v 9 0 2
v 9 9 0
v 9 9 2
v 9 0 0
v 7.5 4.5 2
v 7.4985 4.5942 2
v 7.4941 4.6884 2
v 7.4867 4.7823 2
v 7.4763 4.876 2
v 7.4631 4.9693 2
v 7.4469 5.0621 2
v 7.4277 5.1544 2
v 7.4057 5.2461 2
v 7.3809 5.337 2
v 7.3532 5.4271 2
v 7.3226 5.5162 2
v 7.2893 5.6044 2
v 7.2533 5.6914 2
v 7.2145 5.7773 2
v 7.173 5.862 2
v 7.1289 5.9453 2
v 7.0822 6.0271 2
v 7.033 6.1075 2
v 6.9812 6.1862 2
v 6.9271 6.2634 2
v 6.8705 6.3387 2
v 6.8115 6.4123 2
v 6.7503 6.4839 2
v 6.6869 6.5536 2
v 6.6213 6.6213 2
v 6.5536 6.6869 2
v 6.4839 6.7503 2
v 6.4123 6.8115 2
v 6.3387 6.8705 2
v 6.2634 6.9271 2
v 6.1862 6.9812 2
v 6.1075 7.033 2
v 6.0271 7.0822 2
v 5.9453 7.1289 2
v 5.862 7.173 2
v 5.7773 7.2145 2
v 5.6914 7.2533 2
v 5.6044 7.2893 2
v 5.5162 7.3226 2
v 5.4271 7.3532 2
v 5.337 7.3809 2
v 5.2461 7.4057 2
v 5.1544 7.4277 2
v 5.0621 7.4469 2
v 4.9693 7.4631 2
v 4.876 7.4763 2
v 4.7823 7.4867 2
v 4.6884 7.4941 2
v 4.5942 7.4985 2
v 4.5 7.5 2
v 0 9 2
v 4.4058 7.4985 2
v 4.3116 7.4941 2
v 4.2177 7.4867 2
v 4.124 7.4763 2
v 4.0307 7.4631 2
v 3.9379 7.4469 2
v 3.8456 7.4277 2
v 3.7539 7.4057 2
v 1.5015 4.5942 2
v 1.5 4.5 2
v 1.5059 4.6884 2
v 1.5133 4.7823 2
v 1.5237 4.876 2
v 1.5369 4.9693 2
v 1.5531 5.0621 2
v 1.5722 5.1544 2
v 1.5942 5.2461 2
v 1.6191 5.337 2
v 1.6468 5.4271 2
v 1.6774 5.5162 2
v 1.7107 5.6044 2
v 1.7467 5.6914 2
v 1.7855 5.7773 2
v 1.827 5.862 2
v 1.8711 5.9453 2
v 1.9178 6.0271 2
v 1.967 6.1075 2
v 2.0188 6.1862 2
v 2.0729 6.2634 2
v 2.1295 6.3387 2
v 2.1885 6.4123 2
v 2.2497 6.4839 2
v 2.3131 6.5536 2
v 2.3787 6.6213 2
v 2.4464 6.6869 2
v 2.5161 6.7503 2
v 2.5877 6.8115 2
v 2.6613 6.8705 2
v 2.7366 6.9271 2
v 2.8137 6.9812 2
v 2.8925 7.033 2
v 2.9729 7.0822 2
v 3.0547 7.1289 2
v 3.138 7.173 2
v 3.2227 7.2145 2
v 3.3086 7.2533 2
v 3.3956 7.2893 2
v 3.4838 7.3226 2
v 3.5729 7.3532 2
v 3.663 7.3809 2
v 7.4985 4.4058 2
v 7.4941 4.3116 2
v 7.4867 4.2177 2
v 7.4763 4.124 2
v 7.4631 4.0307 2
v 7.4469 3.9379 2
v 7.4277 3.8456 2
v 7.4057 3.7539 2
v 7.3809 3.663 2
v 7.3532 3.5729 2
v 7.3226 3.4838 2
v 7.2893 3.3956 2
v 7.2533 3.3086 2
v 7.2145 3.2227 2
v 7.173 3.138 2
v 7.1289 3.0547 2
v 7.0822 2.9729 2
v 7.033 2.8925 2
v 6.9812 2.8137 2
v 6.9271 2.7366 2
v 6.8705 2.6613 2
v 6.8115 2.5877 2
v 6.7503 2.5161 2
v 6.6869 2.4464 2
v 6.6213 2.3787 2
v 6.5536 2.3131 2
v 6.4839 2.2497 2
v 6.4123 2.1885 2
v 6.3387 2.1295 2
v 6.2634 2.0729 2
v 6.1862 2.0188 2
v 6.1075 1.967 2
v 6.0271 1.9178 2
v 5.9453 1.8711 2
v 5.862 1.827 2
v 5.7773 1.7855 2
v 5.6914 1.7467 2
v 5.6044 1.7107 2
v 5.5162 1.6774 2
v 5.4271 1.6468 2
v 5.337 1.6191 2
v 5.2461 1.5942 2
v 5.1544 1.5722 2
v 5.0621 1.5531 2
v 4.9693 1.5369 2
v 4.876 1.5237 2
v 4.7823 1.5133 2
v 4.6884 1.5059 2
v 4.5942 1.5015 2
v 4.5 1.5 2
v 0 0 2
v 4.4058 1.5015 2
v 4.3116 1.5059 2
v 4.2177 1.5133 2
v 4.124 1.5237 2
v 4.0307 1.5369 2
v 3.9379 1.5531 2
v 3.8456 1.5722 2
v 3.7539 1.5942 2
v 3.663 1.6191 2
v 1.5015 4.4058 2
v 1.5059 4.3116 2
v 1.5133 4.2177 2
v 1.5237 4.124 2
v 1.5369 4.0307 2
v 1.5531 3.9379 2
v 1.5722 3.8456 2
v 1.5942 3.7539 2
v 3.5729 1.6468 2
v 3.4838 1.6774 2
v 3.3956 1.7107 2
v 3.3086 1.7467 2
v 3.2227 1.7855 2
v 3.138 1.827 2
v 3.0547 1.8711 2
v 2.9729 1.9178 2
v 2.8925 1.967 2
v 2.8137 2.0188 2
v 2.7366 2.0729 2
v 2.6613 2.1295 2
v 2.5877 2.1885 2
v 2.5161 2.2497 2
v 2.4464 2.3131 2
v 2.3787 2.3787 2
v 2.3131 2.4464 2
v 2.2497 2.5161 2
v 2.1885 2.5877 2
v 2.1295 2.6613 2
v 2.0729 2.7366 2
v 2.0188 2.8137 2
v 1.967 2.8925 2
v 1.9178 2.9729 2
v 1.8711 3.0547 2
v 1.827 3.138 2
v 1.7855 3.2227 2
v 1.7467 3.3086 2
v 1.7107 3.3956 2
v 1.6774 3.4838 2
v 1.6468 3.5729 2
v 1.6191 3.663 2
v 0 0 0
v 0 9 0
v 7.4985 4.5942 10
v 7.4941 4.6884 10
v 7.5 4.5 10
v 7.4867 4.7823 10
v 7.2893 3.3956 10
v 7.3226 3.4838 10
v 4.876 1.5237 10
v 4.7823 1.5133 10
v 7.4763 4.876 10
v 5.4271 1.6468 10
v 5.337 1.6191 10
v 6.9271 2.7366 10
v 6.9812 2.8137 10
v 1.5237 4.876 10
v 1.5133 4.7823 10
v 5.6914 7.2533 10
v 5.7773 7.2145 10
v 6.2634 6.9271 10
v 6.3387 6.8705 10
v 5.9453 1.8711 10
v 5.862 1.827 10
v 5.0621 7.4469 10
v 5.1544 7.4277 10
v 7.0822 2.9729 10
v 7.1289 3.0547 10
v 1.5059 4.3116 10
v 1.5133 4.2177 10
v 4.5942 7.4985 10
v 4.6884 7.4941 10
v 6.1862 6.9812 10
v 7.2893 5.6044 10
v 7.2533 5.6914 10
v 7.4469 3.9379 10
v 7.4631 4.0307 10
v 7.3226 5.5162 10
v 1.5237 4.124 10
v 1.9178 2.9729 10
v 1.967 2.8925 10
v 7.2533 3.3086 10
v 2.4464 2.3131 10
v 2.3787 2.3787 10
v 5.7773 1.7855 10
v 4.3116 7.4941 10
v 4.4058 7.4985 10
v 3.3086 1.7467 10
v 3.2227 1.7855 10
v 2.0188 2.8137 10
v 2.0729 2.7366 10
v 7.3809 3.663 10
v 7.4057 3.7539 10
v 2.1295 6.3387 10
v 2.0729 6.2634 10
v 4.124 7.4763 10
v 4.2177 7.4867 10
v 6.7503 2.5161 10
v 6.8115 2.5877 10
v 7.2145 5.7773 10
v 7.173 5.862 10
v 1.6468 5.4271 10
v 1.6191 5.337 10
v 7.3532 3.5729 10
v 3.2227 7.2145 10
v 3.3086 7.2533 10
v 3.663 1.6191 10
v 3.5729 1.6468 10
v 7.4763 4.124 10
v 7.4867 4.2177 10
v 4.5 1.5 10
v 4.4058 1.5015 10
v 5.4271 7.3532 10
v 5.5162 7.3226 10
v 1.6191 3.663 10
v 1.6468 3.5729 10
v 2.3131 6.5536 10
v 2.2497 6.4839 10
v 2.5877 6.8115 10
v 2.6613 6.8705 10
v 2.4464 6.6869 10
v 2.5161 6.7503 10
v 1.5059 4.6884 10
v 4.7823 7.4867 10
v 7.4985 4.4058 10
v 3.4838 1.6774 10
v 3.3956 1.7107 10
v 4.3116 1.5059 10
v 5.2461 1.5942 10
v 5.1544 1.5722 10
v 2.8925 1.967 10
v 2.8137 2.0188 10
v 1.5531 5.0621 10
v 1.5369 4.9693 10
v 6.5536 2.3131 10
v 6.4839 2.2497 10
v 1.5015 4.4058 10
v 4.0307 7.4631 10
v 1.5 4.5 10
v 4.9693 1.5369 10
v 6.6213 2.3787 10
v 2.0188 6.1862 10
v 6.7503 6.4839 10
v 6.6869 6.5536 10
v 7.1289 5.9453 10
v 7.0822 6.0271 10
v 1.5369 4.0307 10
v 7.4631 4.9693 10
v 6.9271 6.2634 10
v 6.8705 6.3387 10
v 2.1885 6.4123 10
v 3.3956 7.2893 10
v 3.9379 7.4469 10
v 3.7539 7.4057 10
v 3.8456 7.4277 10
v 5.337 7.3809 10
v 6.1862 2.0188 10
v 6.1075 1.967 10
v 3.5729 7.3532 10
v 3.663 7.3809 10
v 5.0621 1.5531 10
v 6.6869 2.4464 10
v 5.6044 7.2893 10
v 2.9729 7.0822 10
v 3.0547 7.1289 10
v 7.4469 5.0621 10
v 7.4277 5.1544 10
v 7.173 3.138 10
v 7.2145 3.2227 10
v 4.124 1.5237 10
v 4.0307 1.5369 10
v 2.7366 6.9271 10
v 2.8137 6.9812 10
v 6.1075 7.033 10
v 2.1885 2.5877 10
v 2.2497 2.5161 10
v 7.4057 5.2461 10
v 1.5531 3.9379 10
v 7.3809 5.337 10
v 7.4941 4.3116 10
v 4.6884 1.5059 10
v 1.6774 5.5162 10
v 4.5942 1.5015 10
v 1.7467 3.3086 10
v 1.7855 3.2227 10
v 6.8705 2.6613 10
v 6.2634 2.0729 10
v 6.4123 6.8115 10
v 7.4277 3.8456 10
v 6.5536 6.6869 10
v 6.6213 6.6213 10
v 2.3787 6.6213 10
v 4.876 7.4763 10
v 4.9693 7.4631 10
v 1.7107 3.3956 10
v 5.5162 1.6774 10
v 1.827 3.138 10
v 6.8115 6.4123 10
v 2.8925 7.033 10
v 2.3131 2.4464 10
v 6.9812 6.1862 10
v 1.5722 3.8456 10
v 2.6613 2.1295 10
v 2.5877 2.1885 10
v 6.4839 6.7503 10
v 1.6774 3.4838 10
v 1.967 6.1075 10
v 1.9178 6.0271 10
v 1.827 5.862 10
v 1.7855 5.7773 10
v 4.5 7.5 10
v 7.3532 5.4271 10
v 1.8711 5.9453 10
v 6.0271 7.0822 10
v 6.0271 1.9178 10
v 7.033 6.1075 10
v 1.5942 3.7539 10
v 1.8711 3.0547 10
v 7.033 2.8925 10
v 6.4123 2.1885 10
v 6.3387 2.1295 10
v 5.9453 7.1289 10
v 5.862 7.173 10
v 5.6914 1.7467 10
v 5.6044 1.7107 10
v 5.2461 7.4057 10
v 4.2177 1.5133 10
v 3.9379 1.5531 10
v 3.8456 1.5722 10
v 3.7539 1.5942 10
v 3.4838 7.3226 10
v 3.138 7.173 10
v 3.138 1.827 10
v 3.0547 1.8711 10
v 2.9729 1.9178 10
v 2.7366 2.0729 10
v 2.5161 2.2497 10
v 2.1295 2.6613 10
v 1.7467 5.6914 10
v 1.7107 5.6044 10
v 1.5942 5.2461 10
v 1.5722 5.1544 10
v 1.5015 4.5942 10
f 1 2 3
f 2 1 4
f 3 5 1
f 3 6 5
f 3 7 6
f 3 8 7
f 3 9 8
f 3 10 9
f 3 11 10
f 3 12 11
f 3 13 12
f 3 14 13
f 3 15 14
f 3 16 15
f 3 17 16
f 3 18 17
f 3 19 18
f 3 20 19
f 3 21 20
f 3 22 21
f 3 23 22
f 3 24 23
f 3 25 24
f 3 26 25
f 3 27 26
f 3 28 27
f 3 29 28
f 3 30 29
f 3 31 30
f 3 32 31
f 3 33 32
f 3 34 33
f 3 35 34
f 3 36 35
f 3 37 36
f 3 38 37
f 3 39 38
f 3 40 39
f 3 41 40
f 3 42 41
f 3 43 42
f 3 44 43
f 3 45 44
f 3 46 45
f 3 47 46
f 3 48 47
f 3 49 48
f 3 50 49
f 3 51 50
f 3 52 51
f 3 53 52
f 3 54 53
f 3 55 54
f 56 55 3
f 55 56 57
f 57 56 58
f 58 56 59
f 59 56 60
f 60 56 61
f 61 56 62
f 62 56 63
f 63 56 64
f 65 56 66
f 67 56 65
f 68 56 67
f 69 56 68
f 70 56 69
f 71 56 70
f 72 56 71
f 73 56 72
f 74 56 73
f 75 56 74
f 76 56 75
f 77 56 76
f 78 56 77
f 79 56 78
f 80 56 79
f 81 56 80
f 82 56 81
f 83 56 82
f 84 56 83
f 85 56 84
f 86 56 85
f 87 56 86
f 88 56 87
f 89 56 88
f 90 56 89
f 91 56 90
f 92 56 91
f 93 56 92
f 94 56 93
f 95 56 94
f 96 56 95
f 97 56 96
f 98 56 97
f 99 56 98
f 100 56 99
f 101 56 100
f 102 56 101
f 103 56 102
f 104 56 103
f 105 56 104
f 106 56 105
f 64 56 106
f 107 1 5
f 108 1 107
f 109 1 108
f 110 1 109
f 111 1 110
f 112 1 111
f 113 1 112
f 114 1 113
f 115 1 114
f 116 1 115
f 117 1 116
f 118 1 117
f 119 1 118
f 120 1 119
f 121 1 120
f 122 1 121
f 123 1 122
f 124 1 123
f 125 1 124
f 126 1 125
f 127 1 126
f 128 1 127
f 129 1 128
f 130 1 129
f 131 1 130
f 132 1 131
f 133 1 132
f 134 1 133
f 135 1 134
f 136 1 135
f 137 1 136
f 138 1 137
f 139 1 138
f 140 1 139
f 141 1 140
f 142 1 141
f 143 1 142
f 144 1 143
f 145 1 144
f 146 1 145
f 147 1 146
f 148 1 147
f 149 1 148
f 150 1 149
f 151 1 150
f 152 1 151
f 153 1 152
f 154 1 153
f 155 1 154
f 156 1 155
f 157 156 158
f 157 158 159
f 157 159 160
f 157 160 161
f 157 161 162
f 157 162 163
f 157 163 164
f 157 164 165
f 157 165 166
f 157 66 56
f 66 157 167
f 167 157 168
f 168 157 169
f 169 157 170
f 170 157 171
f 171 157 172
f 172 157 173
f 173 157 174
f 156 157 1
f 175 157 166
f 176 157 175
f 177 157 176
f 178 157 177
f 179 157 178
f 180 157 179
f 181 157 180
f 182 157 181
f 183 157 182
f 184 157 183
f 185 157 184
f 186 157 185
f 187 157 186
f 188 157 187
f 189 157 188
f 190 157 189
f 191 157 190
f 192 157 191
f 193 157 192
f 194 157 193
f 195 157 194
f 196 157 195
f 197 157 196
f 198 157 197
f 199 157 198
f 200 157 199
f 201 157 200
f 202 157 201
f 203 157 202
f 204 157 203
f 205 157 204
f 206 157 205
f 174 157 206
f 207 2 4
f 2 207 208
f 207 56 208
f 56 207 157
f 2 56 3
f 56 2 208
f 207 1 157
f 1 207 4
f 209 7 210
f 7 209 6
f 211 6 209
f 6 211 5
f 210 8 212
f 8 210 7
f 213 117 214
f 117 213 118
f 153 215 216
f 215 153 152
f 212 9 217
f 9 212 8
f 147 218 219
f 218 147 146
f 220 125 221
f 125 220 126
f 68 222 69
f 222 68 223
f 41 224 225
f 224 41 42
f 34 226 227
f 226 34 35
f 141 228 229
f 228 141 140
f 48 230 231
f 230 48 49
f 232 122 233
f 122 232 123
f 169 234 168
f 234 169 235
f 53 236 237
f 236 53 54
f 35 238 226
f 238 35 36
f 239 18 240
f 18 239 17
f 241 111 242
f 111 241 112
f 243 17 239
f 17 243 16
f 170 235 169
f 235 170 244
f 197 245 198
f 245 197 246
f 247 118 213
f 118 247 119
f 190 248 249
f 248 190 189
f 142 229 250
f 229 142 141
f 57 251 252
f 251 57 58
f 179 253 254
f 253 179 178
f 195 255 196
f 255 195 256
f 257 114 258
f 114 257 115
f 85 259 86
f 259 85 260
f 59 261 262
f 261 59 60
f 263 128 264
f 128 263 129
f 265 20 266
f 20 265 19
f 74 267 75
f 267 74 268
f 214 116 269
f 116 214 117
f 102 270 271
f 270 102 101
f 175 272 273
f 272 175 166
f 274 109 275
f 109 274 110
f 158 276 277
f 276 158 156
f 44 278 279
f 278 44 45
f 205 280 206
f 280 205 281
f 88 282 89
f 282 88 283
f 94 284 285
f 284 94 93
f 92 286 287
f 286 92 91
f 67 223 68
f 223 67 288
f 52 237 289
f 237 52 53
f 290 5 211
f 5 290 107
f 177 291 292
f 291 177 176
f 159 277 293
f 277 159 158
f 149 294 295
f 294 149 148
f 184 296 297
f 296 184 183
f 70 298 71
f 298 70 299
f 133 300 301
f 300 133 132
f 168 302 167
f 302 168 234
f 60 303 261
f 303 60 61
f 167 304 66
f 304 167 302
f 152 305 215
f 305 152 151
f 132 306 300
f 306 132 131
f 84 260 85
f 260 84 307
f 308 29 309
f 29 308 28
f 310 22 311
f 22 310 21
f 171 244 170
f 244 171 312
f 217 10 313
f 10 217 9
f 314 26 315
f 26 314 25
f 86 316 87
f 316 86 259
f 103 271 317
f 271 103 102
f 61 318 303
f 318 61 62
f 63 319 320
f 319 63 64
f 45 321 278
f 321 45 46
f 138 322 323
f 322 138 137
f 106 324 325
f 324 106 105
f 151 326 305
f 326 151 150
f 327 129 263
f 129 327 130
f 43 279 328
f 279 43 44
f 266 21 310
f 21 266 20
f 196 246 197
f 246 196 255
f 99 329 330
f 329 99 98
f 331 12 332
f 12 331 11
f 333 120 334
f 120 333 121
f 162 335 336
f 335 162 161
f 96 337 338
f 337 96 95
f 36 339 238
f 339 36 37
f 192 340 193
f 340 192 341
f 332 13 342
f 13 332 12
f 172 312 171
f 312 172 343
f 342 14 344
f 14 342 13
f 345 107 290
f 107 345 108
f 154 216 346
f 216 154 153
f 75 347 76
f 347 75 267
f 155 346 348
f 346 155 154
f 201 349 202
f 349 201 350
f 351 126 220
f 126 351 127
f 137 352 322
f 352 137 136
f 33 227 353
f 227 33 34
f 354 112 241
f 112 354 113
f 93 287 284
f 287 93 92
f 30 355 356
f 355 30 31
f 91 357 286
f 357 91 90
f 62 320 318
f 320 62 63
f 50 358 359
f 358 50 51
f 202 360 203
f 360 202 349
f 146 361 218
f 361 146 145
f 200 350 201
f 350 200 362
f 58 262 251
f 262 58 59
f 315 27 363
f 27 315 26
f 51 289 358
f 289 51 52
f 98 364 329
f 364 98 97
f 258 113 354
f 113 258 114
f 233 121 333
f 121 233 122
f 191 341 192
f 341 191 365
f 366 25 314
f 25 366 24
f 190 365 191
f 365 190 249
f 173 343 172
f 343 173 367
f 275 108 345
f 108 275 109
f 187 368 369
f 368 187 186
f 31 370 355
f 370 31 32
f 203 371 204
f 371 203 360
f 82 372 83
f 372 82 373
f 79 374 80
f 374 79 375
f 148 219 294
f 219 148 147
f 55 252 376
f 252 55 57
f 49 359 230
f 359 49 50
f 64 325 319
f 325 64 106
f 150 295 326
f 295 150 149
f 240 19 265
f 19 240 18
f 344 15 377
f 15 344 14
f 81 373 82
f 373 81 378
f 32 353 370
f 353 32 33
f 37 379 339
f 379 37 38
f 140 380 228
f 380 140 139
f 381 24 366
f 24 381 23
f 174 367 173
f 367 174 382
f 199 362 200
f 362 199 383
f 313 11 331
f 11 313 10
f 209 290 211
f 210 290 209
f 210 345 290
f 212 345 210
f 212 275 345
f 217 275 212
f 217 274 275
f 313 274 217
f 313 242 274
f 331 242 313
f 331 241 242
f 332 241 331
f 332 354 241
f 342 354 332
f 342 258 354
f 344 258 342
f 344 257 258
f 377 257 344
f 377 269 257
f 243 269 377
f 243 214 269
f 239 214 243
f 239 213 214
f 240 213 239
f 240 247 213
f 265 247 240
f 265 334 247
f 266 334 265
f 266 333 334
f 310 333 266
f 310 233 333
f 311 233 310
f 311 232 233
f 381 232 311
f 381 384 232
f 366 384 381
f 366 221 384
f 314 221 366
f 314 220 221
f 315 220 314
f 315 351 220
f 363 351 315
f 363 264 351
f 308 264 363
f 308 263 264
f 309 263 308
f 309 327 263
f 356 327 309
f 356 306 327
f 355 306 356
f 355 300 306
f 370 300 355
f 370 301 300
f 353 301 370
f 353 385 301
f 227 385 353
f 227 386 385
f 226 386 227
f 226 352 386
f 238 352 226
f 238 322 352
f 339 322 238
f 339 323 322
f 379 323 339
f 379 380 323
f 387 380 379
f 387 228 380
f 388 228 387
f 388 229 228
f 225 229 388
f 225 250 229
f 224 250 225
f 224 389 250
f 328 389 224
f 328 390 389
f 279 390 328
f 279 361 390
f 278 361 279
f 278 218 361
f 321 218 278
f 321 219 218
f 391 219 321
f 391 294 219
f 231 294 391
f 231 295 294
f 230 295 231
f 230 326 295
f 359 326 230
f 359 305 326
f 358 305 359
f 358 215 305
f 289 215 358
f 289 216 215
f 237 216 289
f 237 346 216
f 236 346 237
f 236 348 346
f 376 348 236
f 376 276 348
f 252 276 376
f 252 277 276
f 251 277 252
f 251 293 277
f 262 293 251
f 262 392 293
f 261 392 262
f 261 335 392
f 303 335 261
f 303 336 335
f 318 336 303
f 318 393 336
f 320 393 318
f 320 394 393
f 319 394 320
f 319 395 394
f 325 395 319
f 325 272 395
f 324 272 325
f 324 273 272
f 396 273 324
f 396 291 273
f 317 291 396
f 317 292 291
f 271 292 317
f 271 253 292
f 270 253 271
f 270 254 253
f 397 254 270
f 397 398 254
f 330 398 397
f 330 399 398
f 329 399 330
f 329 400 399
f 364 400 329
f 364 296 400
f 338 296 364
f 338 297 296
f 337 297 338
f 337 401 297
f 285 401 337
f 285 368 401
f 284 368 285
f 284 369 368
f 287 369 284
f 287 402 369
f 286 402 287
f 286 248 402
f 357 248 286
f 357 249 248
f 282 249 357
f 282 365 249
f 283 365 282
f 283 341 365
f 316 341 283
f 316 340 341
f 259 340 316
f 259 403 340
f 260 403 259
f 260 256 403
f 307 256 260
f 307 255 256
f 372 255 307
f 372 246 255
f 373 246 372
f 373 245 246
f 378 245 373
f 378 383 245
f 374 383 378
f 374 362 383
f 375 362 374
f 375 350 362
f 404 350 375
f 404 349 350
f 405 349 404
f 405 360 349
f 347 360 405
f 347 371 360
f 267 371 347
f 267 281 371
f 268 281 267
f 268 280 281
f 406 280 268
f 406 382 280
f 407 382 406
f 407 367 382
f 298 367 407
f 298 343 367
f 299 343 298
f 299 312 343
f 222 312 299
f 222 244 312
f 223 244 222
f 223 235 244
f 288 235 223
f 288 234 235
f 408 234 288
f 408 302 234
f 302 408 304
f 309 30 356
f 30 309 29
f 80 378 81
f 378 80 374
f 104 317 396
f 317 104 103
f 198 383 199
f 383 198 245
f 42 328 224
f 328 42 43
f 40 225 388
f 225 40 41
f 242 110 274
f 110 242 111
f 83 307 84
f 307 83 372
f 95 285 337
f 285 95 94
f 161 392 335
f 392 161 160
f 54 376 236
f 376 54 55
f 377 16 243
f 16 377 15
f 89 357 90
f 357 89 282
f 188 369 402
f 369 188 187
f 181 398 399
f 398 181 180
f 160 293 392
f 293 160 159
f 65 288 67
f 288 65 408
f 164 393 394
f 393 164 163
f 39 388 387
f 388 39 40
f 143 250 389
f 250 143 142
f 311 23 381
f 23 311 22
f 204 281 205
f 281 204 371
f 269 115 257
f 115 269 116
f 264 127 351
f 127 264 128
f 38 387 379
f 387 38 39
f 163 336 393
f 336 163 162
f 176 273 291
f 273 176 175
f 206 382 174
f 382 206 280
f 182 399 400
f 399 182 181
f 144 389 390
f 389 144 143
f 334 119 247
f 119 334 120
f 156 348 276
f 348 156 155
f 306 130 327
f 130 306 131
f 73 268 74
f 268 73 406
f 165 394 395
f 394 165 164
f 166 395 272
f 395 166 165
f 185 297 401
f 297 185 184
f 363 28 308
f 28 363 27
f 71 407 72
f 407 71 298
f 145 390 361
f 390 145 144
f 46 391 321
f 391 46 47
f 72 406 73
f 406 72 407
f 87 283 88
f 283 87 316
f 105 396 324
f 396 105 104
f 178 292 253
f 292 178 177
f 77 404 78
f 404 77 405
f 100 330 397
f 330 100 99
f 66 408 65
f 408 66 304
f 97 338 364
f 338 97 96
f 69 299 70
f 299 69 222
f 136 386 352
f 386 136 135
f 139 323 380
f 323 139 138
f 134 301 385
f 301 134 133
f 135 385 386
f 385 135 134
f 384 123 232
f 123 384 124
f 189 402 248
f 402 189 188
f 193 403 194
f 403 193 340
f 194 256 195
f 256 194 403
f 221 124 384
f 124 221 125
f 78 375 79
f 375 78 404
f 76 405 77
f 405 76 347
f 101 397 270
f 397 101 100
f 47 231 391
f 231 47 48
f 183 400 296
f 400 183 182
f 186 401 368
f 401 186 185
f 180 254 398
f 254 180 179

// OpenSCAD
// height of button is 5mm (not pressed)
// probably want 1mm or so of thickness on the bit that touches the button
// ply wood is 6mm, probably want 2mm sticking out
// buttons have a diameter of 7mm

$fn = 200;

cube([9, 9, 2]);
translate([4.5, 4.5, 2])
    cylinder(8, 3, 3);
